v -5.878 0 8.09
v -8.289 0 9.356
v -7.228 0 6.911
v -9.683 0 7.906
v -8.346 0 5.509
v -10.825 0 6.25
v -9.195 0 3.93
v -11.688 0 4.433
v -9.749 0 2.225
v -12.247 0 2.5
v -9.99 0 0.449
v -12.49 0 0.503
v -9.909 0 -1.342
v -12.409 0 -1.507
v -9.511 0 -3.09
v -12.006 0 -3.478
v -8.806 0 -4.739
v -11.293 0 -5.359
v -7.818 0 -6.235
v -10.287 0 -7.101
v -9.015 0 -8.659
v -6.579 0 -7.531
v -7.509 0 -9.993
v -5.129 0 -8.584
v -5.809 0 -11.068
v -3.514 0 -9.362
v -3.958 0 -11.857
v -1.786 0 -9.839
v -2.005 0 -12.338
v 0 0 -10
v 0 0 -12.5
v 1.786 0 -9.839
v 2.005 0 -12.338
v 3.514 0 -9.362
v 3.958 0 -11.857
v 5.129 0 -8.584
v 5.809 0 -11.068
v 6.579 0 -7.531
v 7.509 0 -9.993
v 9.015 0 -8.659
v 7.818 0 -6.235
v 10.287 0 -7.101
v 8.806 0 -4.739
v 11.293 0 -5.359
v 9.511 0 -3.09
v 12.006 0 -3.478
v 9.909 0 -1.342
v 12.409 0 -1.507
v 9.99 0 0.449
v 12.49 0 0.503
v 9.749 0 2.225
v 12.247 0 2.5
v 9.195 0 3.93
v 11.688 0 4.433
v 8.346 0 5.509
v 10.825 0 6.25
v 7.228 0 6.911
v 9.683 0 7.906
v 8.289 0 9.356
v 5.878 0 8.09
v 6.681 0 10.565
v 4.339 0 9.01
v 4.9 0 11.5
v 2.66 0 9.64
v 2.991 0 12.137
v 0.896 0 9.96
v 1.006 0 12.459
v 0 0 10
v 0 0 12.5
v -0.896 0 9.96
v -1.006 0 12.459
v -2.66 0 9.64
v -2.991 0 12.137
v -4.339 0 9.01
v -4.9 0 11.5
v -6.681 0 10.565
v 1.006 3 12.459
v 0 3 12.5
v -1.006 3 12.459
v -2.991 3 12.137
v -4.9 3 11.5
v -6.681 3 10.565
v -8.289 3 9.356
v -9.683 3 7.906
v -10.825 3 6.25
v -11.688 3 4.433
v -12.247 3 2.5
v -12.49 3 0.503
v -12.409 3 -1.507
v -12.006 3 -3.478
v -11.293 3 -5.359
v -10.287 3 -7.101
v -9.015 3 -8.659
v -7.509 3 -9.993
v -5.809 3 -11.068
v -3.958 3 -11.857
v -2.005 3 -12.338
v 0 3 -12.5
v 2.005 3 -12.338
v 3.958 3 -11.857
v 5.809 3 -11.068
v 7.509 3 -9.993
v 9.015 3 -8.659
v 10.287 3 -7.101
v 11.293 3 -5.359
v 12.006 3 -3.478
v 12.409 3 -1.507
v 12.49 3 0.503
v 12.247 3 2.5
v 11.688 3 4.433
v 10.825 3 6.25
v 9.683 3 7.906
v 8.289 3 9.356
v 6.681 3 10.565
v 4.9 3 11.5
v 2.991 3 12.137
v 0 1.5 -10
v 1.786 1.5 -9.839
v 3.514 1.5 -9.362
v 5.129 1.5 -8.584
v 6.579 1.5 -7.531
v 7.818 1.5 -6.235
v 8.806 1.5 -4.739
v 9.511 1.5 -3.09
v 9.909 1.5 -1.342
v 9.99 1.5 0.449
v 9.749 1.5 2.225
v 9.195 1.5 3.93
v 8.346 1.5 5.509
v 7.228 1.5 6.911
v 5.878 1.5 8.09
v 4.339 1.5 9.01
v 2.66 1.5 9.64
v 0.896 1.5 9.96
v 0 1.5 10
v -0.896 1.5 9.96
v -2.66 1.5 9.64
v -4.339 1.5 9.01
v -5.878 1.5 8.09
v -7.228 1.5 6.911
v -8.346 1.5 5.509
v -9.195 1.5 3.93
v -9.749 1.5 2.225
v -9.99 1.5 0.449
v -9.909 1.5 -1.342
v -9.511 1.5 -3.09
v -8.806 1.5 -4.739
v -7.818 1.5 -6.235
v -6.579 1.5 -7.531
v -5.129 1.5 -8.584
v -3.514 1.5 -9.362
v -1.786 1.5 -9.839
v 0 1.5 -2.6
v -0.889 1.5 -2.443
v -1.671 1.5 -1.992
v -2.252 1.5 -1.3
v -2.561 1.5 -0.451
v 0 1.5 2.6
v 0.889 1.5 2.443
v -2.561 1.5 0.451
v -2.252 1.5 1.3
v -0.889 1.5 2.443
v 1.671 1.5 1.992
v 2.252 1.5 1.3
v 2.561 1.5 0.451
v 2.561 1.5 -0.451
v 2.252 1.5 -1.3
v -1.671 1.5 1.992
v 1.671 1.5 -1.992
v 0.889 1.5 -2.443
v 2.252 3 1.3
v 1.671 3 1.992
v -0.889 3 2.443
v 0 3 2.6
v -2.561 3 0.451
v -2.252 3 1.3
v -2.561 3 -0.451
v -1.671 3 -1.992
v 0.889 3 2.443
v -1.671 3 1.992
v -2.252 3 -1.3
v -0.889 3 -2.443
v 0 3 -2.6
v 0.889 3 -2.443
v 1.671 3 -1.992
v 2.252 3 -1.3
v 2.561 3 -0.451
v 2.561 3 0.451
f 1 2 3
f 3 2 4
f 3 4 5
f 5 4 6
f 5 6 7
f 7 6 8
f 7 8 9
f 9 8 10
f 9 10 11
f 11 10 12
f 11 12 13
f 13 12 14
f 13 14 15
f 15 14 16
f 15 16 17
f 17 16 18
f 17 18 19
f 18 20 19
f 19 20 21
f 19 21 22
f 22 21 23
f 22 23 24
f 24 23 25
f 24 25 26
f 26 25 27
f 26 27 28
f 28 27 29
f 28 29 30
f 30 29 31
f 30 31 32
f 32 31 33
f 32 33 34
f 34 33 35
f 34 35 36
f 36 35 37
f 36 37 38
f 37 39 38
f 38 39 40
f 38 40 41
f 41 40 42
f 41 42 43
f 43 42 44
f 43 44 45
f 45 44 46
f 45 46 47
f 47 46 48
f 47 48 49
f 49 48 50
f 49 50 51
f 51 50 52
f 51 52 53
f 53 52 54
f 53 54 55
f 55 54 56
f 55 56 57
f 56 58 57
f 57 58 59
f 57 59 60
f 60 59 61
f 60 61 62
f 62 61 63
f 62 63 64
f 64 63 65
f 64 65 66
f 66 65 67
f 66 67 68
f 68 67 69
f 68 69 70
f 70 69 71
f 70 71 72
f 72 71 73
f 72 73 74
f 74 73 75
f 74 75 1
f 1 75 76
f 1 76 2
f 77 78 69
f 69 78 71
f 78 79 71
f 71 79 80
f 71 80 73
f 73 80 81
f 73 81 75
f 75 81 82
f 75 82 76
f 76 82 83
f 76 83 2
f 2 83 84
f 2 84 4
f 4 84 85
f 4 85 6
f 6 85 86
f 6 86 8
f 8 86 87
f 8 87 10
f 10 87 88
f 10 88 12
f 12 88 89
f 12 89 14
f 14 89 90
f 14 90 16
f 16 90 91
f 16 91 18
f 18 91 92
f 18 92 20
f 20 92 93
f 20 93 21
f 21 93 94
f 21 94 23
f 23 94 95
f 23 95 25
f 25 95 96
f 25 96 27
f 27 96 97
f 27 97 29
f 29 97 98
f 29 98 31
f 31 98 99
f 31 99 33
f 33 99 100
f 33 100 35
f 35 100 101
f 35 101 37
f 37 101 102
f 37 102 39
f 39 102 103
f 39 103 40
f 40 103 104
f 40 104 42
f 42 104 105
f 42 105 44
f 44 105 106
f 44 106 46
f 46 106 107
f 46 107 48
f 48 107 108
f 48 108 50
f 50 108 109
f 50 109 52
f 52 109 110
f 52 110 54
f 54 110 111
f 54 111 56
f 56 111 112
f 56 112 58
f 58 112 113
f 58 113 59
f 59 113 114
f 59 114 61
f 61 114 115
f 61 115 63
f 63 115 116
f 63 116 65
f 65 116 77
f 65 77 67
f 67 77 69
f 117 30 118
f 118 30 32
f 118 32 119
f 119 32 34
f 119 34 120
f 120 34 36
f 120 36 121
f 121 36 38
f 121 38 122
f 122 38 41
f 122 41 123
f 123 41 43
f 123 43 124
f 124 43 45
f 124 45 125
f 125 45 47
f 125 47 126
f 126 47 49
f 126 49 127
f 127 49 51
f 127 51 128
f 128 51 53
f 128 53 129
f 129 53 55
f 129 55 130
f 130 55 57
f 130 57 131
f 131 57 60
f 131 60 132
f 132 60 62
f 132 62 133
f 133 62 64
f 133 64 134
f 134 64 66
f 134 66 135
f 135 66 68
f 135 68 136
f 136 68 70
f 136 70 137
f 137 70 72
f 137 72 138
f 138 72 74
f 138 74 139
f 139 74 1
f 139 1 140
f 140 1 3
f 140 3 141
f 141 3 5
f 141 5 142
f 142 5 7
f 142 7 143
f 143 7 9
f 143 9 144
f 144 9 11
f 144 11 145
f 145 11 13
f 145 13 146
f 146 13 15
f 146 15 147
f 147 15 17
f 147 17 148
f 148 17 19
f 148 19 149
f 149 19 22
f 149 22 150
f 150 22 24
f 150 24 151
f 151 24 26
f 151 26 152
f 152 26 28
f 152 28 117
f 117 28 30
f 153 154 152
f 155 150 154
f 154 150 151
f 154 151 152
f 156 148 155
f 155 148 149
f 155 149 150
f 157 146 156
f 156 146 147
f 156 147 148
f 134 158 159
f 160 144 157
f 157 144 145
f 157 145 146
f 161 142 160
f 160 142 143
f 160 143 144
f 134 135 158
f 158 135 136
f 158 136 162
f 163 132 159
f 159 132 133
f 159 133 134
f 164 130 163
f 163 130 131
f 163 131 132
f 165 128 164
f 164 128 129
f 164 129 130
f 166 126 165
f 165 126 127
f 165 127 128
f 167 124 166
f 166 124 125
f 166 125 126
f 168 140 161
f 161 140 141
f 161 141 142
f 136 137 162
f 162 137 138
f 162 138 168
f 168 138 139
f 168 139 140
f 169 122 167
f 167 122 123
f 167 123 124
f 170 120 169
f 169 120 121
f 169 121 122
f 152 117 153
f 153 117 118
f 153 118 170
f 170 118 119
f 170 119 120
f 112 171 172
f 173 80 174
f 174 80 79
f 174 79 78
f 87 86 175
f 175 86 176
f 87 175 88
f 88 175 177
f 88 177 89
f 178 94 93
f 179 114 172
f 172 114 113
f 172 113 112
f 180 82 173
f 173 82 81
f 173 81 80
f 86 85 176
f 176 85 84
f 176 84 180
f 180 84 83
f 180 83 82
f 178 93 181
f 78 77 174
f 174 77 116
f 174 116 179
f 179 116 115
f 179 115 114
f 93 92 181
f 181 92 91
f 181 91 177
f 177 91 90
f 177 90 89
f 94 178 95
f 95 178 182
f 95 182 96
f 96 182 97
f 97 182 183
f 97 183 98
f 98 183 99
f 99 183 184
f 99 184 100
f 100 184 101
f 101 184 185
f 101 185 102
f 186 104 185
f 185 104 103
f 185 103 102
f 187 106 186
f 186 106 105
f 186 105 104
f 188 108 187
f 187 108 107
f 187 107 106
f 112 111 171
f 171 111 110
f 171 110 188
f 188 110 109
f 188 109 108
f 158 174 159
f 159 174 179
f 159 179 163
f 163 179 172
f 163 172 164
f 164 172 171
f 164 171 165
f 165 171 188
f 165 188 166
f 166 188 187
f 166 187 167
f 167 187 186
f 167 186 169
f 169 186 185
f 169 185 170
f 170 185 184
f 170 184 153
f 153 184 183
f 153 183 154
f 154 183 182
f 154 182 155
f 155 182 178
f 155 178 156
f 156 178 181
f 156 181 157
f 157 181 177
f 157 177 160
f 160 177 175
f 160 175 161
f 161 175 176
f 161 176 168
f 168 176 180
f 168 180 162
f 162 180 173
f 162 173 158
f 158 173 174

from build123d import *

# Parameters (mm, degrees)
SKETCH1_R           = 12.5
SKETCH1_R_2         = 10
BOSS_EXTRUDE1_DEPTH = 1.5
SKETCH2_R           = 12.5
BOSS_EXTRUDE2_DEPTH = 1.5
SKETCH3_R           = 2.6
CUT_EXTRUDE1_DEPTH  = 2


with BuildPart() as part:
    # Sketch1 → Boss-Extrude1 (new body)
    with BuildSketch(Plane(origin=(0, 0, 0), x_dir=(1, 0, 0), z_dir=(0, 1, 0))):
        with Locations(Location((0, 0, 0), (0, 0, 270))):
            Circle(SKETCH1_R)
        with Locations(Location((0, 0, 0), (0, 0, 270))):
            Circle(SKETCH1_R_2, mode=Mode.SUBTRACT)
    extrude(amount=BOSS_EXTRUDE1_DEPTH)

    # Sketch2 → Boss-Extrude2 (add)
    with BuildSketch(Plane(origin=(0, 1.5, 0), x_dir=(1, 0, 0), z_dir=(0, 1, 0))):
        with Locations(Location((0, 0, 0), (0, 0, 270))):
            Circle(SKETCH2_R)
    extrude(amount=BOSS_EXTRUDE2_DEPTH)

    # Sketch3 → Cut-Extrude1 (cut)
    with BuildSketch(Plane(origin=(0, 3, 0), x_dir=(1, 0, 0), z_dir=(0, 1, 0))):
        with Locations(Location((0, 0, 0), (0, 0, 270))):
            Circle(SKETCH3_R)
    extrude(amount=-CUT_EXTRUDE1_DEPTH, mode=Mode.SUBTRACT)


solid = part.part
